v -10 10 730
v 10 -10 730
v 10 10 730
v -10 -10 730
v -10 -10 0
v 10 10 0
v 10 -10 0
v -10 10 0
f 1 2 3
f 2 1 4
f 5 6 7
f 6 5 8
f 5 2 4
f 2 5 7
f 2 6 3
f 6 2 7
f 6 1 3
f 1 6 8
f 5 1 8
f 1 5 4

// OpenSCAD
/** table-leg 20x20x730, millimeters, centered at z=0 */

translate( [0,0,730/2] ) 
  cube( size=[20, 20, 730], center=true );
